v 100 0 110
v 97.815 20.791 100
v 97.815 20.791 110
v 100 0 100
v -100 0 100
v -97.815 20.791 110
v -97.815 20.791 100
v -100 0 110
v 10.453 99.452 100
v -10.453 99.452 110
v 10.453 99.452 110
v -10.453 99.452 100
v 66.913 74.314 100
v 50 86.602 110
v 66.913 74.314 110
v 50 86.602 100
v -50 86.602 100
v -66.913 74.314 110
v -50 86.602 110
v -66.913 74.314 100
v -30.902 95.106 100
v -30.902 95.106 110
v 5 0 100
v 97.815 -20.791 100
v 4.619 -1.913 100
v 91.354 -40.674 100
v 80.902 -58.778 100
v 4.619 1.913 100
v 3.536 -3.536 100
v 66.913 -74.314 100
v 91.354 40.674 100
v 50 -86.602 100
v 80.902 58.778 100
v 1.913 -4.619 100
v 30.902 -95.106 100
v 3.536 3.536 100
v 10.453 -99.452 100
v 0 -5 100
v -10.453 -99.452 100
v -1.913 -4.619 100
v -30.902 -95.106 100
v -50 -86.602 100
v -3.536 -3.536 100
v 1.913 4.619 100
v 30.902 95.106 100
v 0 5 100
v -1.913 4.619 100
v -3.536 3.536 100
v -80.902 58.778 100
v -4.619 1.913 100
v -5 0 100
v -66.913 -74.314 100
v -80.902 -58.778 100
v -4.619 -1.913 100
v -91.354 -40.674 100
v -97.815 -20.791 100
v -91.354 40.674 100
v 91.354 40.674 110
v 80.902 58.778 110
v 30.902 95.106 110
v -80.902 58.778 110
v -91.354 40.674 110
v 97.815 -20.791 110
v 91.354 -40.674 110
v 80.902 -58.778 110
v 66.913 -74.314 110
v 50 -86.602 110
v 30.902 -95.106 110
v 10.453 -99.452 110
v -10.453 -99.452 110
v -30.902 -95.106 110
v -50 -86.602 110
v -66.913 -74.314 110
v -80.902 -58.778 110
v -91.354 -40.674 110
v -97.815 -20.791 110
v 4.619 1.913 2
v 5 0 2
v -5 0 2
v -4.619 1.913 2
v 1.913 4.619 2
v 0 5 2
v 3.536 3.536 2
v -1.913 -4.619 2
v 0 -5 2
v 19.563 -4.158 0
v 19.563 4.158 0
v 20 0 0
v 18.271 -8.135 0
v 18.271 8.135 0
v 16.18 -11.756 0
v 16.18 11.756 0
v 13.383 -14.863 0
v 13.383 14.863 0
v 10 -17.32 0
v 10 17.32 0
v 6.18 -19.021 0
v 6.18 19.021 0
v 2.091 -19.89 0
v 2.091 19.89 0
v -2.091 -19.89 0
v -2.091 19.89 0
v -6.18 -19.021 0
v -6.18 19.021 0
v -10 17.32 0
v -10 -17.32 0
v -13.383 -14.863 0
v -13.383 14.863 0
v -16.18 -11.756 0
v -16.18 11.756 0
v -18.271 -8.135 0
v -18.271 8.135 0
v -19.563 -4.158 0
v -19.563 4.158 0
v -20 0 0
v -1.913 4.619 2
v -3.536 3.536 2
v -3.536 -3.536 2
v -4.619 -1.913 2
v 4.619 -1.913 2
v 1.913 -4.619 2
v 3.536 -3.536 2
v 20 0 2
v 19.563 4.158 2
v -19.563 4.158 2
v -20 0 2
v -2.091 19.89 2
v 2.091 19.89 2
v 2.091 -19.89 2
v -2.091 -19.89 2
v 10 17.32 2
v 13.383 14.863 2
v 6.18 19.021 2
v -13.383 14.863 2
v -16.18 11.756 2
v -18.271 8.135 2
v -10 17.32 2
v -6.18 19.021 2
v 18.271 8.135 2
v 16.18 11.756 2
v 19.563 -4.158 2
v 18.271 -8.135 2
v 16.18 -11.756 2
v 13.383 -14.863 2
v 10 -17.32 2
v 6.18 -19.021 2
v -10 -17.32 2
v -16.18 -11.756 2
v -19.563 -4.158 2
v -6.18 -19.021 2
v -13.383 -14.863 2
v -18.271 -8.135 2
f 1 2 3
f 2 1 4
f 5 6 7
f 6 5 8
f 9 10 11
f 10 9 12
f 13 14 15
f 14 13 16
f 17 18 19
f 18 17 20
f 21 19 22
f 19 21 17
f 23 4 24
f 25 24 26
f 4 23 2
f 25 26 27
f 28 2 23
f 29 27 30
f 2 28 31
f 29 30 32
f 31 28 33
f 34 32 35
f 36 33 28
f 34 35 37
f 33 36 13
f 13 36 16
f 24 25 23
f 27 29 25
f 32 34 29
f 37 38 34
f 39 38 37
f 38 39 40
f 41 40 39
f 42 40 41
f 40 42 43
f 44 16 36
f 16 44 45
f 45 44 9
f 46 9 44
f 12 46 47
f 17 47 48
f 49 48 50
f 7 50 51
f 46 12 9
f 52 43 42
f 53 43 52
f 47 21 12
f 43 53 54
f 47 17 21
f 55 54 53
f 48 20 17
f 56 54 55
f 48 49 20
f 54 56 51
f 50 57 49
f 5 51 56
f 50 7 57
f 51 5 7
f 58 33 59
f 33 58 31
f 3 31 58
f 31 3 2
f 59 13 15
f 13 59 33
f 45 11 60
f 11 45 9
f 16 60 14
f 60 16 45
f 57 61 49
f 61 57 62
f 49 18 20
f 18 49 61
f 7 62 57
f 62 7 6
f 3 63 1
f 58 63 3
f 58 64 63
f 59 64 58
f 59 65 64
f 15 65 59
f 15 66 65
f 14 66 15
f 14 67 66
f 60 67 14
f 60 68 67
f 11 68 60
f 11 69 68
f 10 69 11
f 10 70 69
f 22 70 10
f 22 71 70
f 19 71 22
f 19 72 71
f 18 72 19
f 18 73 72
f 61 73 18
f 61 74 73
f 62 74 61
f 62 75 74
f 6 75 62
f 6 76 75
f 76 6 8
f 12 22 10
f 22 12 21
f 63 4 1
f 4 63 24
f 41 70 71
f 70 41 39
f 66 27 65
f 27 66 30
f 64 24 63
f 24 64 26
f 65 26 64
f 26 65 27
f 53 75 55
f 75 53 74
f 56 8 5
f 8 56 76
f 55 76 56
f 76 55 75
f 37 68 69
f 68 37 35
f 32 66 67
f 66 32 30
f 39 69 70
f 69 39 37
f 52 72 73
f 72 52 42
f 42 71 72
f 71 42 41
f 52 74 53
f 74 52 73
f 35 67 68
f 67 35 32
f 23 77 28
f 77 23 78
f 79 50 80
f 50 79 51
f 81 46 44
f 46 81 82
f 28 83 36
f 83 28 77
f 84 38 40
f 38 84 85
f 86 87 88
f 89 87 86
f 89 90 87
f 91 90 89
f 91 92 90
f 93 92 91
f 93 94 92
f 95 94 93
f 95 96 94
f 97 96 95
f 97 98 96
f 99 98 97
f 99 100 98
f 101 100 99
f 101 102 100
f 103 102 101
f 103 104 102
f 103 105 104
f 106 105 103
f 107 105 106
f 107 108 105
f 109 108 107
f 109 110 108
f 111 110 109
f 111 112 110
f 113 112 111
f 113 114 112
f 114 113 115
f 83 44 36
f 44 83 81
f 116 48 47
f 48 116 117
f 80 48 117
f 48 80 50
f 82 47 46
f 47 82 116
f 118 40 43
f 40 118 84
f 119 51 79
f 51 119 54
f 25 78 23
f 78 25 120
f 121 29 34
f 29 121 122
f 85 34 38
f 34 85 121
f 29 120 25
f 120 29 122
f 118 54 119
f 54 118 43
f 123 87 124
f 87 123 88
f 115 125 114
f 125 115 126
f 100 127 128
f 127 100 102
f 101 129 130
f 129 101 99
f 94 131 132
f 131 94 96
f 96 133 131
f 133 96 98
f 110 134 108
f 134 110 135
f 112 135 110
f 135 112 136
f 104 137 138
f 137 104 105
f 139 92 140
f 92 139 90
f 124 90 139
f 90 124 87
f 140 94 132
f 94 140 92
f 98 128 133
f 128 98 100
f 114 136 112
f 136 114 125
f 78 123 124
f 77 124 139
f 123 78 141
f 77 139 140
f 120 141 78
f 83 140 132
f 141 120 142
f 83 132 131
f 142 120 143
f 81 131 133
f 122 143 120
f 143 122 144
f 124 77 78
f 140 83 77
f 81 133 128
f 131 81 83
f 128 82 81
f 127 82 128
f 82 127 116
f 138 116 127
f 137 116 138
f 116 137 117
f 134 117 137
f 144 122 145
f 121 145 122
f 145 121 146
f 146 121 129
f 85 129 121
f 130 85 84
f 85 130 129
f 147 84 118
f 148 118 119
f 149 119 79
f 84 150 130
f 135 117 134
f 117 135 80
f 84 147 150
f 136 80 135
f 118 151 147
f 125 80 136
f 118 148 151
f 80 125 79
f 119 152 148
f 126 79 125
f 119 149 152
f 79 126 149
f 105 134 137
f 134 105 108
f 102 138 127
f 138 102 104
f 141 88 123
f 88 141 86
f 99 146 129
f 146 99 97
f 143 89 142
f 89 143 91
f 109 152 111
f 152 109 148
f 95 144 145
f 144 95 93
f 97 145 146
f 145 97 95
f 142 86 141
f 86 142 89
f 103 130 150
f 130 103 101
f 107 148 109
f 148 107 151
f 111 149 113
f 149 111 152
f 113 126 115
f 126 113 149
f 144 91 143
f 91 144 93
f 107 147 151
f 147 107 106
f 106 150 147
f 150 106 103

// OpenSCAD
union(){
    cube(size=[0, 0, 0]);
    translate(v=[0, 0, 100]){
        color(""){
            cylinder(h=10, r=100);
        };
    };
    color(""){
        cylinder(h=100, r=5);
    };
    color(""){
        cylinder(h=2, r=20);
    };
};
